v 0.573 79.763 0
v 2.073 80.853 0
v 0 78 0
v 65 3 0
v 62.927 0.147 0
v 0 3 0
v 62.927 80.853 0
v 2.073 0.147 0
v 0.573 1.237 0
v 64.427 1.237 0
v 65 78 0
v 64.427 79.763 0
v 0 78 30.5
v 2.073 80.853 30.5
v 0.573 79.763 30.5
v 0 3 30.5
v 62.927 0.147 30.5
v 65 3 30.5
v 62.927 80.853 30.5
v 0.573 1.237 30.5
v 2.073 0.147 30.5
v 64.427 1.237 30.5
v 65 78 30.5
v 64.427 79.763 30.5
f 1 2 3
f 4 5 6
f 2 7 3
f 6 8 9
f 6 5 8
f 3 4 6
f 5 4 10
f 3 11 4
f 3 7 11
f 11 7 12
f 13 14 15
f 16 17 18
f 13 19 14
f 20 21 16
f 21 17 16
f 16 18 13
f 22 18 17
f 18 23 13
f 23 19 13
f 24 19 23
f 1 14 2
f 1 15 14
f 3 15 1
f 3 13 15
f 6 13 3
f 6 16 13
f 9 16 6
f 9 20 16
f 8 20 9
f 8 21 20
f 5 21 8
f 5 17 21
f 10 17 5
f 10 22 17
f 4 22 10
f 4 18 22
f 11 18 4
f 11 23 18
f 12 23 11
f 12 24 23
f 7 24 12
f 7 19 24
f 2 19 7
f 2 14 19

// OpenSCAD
// file: ../../lib/rounded_square.scad
$bleed = 1;
$rounding = 3;

module rounded_square(size) {
  inner_size = [
    size[0] - $rounding * 2,
    size[1] - $rounding * 2,
  ];

  minkowski() {
    translate([$rounding, $rounding, 0]) {
      square(inner_size);
    }
    circle($rounding);
  }
}
// file: ../../lib/rounded_cube.scad
include <./rounded_square.scad>

$bleed = 1;
$rounding = 3;

// Render a rounded cube
// flat_top: do not round the top edges
// flat_bottom: do not round the bottom edges
// flat: equals flat_top && flat_bottom
// 
// Limitations:
// requires height > $rounding * 2
// flat_top || flat_bottom requires height > $rounding
// flat_top && flat_bottom requires height > $bleed
module rounded_cube(
  size, 
  flat=false, 
  flat_top=false, 
  flat_bottom=false,
  side_rounding=-1
) {
  _flat = flat || (flat_top && flat_bottom);
  _flat_top = flat_top || flat;
  _flat_bottom = flat_bottom || flat;
  _rounding = min($rounding, size[2] / 2);
  _side_rounding = side_rounding > -1 ? side_rounding: $rounding;

  assert(_side_rounding >= $rounding, "side rounding cannot be less than rounding");

  top_height = _flat_top ? 0: _rounding;
  bottom_height = _flat_bottom ? 0: _rounding;

  cube_size = [
    size[0] - _rounding * 2,
    size[1] - _rounding * 2,
    size[2] - (top_height + bottom_height)
  ];

  if (_flat_top && _flat_bottom) {
     linear_extrude(cube_size[2]) {
       rounded_square([size[0], size[1]]);
     }
  } else {
    minkowski() {
      translate([_rounding, _rounding, bottom_height]) {
        if (_side_rounding != _rounding) {
          linear_extrude(cube_size[2]) {
            rounded_square([cube_size[0], cube_size[1]], $rounding=_side_rounding);
          }
        } else {
          cube(cube_size);
        }
      }

      if (_flat_top) {
        difference() {
          sphere(_rounding);
          cylinder(_rounding, _rounding, _rounding);
        }
      } else if (_flat_bottom) {
        difference() {
          sphere(_rounding);
          translate ([0, 0, -_rounding]) {
            cylinder(_rounding, _rounding, _rounding);
          }
        }
      } else {
        sphere(_rounding);
      }
    }
  }
}
// main file
echo(version=version());

include <../../lib/rounded_cube.scad>

$wall_thickness = 2;
$rounding = 3;
$bleed = 0.01;

length = 65;
width = 81;
height = 30.5;

rounded_cube([length, width, height], flat_top=true, flat_bottom=true);
